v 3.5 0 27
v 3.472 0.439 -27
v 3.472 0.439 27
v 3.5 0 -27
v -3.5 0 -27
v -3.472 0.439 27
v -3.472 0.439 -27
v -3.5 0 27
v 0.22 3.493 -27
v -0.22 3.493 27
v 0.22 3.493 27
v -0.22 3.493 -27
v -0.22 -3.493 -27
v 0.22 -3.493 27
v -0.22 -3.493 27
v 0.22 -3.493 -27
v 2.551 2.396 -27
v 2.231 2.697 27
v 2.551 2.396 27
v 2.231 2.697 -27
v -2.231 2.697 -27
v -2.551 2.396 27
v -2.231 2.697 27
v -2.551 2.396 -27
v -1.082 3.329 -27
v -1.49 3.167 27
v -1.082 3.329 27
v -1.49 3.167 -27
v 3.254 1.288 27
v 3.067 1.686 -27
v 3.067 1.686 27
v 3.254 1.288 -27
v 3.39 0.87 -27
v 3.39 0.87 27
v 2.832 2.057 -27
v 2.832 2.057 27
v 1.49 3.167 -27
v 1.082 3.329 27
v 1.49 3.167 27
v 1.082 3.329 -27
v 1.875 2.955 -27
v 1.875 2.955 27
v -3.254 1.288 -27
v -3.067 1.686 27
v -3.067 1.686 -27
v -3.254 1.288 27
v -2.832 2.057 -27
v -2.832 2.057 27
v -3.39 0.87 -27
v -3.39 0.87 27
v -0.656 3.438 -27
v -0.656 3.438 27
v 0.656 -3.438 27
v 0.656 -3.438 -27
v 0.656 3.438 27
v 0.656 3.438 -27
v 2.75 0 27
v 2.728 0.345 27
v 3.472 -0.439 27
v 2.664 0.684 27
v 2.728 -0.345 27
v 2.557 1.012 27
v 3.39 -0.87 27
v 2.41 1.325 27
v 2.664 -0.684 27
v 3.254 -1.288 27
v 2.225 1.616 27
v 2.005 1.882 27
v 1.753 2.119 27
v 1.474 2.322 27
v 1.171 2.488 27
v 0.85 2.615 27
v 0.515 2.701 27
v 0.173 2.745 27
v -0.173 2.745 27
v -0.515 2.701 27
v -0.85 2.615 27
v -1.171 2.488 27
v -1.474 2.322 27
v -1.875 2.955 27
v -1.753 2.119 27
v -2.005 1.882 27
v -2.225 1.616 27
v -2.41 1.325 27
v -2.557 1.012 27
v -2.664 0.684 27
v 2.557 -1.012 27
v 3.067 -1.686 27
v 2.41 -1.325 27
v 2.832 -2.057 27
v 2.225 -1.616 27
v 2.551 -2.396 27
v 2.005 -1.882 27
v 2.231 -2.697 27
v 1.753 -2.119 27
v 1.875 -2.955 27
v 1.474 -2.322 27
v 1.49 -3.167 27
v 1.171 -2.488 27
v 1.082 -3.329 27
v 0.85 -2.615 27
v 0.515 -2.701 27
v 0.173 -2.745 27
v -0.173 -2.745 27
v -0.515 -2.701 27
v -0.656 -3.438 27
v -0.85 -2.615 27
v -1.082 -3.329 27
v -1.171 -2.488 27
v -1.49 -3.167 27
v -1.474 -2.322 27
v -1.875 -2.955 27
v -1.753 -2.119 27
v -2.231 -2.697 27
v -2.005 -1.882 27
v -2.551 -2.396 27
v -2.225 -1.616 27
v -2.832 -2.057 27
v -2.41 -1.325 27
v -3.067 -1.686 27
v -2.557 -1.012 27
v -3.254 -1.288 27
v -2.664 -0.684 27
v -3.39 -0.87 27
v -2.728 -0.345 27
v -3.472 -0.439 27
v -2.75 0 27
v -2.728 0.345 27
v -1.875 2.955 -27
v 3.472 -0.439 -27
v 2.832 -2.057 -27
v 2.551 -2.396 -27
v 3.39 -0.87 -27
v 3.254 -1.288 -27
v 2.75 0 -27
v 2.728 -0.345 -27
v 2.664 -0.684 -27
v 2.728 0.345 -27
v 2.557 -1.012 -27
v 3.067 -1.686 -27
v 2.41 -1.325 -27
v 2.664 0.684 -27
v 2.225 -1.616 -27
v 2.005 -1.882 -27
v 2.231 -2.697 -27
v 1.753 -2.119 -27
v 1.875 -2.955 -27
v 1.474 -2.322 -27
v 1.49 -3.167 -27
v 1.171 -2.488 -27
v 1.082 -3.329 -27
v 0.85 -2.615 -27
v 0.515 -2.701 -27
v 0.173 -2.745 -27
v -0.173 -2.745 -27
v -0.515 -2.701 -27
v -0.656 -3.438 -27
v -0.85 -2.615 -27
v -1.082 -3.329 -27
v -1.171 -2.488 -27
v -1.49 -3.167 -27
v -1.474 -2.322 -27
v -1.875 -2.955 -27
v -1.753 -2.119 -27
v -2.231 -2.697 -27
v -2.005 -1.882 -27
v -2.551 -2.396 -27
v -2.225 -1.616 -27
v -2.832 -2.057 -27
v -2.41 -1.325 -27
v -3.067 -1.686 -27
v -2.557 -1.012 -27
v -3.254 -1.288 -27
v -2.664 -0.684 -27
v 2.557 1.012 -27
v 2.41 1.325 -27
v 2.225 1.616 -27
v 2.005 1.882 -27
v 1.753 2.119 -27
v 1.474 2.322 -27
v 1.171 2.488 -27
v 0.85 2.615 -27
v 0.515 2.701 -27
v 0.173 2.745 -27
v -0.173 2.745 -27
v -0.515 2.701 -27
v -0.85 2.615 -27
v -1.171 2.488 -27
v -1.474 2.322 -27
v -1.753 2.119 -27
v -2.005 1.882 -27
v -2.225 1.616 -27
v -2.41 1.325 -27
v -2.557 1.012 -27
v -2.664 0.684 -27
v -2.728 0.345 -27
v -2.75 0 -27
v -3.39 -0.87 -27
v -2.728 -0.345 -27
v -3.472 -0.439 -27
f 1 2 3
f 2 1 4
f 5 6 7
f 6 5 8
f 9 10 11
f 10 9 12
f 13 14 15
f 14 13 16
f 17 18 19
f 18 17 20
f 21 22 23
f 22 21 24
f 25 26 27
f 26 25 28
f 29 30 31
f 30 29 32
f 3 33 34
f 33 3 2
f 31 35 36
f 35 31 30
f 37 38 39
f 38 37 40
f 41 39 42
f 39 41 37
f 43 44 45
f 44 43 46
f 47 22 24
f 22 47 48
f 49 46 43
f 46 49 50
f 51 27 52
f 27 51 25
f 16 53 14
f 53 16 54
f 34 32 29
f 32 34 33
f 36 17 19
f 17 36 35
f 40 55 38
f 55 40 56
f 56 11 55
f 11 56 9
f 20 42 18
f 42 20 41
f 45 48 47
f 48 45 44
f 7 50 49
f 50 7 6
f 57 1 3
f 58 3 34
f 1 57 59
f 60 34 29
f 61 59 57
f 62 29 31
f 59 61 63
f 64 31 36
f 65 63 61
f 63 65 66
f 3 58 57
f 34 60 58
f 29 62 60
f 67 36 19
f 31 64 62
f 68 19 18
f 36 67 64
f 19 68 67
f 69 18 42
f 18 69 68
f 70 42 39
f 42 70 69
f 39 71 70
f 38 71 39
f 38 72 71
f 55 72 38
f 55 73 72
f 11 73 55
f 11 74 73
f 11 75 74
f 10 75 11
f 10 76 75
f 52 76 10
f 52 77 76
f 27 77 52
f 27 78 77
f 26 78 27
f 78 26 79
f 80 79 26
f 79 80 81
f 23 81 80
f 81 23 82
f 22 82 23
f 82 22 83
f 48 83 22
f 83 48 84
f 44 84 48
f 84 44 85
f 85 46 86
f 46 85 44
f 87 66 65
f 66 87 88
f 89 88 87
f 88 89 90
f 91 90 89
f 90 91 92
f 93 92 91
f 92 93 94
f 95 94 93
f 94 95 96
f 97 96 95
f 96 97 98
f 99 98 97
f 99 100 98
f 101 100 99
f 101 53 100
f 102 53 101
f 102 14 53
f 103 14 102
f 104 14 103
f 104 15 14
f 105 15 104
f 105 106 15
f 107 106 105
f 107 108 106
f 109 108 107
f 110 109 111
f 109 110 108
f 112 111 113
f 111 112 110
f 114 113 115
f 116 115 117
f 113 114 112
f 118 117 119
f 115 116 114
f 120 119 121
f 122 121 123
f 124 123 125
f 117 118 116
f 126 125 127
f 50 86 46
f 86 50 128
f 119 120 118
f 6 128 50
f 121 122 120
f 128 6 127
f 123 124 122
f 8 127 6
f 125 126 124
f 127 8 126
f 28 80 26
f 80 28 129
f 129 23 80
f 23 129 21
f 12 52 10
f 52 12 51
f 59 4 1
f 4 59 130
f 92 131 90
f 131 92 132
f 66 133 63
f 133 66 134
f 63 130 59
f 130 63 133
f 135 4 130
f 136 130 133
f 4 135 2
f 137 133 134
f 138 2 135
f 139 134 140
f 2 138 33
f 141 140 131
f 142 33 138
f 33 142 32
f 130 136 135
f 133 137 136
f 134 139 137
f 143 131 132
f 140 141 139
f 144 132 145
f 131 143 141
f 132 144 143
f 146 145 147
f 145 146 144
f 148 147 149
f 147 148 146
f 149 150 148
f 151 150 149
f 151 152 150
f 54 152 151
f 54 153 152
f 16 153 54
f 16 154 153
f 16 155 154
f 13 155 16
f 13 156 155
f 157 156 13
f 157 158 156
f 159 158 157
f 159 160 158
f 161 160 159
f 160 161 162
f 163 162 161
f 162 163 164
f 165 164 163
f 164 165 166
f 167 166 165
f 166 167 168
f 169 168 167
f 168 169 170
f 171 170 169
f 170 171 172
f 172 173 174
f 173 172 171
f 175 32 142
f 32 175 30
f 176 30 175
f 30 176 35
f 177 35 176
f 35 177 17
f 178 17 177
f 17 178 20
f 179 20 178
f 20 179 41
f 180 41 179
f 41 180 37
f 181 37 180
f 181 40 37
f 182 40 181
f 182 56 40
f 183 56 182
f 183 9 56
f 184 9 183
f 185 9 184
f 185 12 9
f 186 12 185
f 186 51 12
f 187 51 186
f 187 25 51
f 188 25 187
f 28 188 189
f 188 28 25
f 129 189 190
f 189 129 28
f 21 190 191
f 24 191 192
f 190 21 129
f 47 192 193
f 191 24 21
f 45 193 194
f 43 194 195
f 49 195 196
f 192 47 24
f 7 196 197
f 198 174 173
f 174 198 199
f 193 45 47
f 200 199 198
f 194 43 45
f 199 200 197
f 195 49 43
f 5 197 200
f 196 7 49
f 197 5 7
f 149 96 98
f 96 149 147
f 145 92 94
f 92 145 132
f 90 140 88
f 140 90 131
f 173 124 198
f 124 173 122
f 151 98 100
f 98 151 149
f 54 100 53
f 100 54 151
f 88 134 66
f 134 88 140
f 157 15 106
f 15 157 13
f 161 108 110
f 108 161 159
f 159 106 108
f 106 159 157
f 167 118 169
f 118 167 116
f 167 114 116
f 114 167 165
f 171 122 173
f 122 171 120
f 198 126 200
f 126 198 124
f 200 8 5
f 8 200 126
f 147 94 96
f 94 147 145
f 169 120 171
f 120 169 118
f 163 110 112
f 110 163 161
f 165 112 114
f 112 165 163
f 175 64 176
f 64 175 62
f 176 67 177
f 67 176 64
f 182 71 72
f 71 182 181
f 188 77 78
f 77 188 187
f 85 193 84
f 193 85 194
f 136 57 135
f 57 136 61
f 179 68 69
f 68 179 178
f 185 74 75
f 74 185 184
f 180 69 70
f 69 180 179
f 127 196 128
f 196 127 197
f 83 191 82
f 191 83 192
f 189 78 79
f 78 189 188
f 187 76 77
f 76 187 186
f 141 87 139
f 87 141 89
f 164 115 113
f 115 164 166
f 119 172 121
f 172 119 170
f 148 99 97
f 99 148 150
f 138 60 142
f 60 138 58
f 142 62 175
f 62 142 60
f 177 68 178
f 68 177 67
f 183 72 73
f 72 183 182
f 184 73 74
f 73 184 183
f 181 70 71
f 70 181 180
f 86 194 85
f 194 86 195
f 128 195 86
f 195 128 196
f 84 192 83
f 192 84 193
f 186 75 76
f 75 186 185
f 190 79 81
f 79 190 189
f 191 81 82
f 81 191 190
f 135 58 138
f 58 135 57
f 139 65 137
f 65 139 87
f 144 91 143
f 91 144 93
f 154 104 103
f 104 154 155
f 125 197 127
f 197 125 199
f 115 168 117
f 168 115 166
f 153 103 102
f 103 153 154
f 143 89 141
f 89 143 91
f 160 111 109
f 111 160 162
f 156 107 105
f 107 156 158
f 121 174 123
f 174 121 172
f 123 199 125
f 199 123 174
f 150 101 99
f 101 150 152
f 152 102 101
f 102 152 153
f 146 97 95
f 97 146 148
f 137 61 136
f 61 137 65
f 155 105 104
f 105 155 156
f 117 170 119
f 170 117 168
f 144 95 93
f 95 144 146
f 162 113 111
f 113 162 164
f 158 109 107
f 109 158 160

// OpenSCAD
$fn = 50;


difference() {
	union() {
		translate(v = [0, 0, -27.0000000000]) {
			cylinder(h = 54, r = 3.5000000000);
		}
	}
	union() {
		translate(v = [0, 0, -100.0000000000]) {
			cylinder(h = 200, r = 2.7500000000);
		}
	}
}
